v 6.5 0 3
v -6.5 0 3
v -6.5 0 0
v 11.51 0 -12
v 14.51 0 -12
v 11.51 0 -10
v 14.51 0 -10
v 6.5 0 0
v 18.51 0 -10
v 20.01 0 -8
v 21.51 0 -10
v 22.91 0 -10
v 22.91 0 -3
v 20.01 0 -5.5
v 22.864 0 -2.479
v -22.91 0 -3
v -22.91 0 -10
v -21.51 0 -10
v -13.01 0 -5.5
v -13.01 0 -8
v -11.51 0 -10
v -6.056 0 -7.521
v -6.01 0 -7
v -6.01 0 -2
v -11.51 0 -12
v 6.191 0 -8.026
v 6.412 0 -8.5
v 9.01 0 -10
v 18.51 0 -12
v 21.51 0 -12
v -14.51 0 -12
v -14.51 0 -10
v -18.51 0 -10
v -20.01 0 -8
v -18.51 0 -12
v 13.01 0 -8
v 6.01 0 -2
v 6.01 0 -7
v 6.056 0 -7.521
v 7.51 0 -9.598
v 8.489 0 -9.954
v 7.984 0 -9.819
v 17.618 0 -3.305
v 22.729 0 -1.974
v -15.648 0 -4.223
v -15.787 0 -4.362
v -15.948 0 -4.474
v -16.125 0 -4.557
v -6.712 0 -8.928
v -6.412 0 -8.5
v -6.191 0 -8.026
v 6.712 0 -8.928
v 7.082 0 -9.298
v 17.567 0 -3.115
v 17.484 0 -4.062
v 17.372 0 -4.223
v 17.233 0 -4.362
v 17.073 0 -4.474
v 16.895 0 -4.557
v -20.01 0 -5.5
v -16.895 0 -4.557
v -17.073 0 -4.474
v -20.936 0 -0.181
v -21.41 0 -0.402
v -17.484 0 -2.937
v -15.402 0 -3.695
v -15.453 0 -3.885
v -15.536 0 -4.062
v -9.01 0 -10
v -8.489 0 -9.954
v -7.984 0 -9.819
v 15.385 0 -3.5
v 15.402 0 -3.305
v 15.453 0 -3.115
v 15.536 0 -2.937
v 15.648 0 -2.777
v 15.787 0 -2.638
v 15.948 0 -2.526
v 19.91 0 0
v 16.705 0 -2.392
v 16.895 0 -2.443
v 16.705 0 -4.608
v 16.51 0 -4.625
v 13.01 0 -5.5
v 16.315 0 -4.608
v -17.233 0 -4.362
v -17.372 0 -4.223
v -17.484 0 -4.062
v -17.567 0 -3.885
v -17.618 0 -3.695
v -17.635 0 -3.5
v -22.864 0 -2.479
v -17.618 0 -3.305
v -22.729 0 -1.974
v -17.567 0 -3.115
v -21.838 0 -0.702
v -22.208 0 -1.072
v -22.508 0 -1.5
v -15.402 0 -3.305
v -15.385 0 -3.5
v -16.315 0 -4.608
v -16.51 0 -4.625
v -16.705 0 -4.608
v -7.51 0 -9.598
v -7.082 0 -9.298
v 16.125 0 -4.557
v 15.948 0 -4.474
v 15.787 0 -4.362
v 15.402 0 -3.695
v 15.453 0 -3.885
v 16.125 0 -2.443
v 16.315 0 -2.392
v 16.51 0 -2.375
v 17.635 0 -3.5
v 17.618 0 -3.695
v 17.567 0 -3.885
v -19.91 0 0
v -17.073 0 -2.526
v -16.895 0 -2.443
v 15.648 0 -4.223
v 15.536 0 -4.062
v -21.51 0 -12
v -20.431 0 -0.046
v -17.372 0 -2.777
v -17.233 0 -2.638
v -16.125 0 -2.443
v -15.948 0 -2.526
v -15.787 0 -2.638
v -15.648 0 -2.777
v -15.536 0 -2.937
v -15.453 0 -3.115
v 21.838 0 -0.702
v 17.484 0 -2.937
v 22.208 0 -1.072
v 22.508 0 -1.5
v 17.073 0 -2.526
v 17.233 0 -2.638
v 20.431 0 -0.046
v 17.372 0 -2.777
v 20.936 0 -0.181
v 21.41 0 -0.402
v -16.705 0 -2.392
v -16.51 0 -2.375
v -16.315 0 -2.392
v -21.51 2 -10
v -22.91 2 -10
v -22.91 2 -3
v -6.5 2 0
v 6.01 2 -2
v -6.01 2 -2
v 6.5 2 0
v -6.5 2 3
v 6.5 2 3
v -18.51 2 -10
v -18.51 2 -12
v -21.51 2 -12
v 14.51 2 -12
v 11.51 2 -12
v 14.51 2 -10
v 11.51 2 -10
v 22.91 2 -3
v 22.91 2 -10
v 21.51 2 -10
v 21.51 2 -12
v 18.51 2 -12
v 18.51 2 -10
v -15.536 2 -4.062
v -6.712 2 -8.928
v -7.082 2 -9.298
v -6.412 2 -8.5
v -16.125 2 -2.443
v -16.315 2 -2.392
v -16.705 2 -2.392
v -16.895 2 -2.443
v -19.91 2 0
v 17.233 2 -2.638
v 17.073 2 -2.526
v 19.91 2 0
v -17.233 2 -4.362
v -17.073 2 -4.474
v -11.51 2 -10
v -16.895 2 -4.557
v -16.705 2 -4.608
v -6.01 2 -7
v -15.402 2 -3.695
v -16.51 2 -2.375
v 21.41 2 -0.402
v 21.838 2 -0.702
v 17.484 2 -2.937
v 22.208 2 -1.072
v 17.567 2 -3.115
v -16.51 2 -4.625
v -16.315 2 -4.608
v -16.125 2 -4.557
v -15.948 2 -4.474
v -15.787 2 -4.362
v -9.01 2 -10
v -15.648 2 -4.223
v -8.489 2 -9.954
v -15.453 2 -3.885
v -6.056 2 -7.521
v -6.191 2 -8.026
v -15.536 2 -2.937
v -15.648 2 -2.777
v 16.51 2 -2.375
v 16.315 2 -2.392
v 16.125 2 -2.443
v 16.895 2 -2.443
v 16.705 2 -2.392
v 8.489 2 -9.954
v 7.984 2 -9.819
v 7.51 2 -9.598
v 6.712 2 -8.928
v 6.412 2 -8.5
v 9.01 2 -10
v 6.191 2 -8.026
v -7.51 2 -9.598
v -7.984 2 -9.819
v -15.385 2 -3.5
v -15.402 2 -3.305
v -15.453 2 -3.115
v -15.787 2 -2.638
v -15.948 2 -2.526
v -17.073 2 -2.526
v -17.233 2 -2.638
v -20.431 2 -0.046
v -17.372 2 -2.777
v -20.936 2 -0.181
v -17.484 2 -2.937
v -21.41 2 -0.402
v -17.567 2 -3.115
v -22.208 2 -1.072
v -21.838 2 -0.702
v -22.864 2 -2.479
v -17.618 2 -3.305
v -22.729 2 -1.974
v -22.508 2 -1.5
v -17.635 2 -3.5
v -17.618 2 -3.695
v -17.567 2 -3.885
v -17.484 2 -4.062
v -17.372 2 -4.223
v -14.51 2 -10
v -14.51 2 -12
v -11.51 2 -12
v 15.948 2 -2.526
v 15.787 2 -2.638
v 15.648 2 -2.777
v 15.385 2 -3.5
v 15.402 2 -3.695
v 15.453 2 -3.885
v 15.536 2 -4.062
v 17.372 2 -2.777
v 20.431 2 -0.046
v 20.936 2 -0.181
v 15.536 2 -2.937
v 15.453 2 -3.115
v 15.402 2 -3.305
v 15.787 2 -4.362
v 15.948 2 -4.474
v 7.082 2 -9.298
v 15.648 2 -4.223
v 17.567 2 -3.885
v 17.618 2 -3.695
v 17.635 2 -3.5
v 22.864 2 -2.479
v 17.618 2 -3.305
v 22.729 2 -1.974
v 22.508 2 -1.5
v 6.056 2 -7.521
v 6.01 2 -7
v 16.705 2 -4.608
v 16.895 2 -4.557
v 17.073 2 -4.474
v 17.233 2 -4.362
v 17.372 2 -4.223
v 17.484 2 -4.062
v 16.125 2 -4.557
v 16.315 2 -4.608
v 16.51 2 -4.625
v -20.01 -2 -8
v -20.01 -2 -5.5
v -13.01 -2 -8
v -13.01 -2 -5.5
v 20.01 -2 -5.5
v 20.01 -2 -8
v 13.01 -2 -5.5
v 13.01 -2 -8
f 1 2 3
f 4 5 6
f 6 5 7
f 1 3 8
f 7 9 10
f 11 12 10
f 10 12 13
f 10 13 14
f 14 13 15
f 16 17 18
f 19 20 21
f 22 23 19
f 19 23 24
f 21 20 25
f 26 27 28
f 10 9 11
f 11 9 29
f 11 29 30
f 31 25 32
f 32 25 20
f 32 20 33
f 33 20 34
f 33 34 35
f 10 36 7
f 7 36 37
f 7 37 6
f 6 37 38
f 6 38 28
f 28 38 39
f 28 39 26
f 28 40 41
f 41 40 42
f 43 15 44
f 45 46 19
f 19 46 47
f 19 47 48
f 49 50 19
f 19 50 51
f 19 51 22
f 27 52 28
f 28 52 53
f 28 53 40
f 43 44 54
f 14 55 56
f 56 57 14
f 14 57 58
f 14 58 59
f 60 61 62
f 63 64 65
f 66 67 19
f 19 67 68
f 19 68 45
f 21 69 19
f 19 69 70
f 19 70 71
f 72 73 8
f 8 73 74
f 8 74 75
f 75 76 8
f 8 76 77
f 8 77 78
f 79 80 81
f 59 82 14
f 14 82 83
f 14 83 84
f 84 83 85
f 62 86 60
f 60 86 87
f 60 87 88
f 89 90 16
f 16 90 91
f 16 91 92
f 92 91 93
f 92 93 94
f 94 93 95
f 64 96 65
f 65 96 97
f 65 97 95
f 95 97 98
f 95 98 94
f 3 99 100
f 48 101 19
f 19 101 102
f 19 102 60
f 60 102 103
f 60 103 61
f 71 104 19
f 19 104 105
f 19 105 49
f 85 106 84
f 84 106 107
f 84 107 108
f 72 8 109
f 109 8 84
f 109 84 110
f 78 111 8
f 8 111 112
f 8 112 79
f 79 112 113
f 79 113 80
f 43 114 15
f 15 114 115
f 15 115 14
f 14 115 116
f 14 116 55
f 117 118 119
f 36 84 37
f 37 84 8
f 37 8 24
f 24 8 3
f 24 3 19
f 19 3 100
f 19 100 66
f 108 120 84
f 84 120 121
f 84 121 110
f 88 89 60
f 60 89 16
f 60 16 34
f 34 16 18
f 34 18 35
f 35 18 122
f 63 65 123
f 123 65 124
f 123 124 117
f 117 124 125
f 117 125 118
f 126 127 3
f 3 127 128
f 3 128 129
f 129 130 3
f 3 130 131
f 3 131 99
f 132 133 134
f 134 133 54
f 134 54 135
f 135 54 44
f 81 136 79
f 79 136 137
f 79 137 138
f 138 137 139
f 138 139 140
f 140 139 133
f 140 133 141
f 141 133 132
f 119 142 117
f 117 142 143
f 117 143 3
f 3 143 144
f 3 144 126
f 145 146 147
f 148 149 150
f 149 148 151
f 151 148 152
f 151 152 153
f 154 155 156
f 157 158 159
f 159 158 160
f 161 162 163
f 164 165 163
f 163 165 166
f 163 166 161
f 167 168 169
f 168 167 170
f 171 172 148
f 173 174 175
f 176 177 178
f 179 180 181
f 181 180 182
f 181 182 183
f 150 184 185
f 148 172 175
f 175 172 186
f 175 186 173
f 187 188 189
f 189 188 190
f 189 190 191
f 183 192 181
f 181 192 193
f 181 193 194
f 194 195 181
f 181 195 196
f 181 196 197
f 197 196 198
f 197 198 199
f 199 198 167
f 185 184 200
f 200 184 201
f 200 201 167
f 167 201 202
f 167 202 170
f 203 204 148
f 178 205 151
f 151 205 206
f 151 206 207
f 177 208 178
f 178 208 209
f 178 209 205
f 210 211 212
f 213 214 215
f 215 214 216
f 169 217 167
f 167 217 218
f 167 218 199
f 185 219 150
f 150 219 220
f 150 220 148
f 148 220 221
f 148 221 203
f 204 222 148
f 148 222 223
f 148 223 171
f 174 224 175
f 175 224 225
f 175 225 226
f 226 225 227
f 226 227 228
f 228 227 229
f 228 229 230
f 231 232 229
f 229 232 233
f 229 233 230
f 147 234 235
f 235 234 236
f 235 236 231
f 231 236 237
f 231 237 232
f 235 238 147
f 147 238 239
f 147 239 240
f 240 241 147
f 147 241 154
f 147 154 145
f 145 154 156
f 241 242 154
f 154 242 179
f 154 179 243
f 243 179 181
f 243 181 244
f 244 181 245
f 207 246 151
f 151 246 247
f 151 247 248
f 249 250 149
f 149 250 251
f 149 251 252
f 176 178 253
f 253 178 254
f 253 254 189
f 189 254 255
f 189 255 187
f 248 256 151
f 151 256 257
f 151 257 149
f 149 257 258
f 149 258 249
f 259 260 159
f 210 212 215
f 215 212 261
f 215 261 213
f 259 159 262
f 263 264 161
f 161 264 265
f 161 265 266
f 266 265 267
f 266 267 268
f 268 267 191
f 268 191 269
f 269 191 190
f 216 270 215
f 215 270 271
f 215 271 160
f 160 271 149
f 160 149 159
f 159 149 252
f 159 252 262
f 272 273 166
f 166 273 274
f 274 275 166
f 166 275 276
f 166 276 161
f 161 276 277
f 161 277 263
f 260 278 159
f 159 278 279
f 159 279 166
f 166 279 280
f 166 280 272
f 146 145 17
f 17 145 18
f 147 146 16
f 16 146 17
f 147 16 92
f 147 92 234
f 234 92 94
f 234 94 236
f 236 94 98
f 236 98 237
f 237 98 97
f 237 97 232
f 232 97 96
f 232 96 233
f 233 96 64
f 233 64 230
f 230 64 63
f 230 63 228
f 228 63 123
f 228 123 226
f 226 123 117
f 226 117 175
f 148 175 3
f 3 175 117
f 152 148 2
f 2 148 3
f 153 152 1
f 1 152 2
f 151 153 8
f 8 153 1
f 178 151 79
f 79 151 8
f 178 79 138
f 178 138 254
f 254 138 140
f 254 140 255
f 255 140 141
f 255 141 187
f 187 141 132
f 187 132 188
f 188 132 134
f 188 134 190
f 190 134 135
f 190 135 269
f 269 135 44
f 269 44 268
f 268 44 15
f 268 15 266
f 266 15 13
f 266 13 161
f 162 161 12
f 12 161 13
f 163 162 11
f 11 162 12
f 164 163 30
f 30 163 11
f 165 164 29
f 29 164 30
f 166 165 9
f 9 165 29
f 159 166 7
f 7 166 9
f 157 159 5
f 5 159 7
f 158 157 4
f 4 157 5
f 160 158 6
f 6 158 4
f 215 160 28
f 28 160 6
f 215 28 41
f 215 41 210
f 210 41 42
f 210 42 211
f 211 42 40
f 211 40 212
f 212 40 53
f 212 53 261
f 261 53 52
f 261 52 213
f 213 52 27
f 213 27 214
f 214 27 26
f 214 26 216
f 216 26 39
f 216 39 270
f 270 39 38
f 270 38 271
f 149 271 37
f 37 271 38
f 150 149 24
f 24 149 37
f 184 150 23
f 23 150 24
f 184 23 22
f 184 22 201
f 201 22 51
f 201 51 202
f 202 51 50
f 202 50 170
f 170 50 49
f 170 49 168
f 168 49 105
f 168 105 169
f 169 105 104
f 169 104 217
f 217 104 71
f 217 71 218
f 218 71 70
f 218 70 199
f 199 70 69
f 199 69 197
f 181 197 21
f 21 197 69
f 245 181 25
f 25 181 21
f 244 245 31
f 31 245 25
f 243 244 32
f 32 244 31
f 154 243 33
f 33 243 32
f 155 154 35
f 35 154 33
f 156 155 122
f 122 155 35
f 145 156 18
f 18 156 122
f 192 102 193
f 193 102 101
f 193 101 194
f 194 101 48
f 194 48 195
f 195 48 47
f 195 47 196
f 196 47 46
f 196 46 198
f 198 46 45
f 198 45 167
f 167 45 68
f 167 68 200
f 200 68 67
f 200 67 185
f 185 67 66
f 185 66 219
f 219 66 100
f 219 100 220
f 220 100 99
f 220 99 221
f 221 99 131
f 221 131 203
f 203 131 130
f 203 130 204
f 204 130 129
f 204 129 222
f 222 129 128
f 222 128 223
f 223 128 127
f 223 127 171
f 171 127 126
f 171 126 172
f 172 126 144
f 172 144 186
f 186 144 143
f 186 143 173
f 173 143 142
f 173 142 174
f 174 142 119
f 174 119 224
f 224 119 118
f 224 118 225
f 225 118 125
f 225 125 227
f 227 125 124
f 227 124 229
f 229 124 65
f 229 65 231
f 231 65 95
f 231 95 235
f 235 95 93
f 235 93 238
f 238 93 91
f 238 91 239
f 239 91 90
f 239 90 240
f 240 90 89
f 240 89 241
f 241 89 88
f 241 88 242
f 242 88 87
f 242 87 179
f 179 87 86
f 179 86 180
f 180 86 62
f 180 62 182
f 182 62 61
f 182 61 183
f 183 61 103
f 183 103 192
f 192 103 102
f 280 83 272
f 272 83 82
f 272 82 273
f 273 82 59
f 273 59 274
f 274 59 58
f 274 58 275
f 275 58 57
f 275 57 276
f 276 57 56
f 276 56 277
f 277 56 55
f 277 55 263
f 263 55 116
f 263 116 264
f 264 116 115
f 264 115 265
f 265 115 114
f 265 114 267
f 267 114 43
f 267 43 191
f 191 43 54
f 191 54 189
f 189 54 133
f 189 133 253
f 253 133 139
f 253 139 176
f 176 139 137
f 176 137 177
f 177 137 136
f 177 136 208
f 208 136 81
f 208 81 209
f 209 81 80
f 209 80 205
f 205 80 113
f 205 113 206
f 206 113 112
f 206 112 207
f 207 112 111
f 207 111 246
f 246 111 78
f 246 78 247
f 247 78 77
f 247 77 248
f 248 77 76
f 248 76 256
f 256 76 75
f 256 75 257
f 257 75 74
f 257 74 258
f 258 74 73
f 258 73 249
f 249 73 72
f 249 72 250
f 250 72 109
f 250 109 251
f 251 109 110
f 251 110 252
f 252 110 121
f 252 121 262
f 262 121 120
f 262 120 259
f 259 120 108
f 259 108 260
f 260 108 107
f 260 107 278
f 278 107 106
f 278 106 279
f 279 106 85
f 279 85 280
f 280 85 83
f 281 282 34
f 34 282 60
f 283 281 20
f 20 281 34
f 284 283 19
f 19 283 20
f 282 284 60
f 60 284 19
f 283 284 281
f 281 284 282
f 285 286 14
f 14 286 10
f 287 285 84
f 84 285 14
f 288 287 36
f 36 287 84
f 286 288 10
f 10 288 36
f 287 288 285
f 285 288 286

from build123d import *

# Parameters (mm, degrees)
CROQUIS1_R              = 1.125
SALIENTE_EXTRUIR1_DEPTH = 2
CROQUIS3_W              = 7
CROQUIS3_H              = 2.5
SALIENTE_EXTRUIR2_DEPTH = 2


with BuildPart() as part:
    # Croquis1 → Saliente-Extruir1 (new body)
    with BuildSketch(Plane(origin=(0, 0, 0), x_dir=(1, 0, 0), z_dir=(0, 1, 0))):
        with BuildLine():
            Line((19.91, 0), (6.5, 0))
            Line((6.5, 0), (6.5, -3))
            Line((6.5, -3), (-6.5, -3))
            Line((-6.5, -3), (-6.5, 0))
            Line((-6.5, 0), (-19.91, 0))
            ThreePointArc((-19.91, 0), (-22.031320344, 0.878679656), (-22.91, 3))
            Line((-22.91, 3), (-22.91, 10))
            Line((-22.91, 10), (-21.51, 10))
            Line((-21.51, 10), (-21.51, 12))
            Line((-21.51, 12), (-18.51, 12))
            Line((-18.51, 12), (-18.51, 10))
            Line((-18.51, 10), (-14.51, 10))
            Line((-14.51, 10), (-14.51, 12))
            Line((-14.51, 12), (-11.51, 12))
            Line((-11.51, 12), (-11.51, 10))
            Line((-11.51, 10), (-9.01, 10))
            ThreePointArc((-9.01, 10), (-6.888679656, 9.121320344), (-6.01, 7))
            Line((-6.01, 7), (-6.01, 2))
            Line((-6.01, 2), (6.01, 2))
            Line((6.01, 2), (6.01, 7))
            ThreePointArc((6.01, 7), (6.888679656, 9.121320344), (9.01, 10))
            Line((9.01, 10), (11.51, 10))
            Line((11.51, 10), (11.51, 12))
            Line((11.51, 12), (14.51, 12))
            Line((14.51, 12), (14.51, 10))
            Line((14.51, 10), (18.51, 10))
            Line((18.51, 10), (18.51, 12))
            Line((18.51, 12), (21.51, 12))
            Line((21.51, 12), (21.51, 10))
            Line((21.51, 10), (22.91, 10))
            Line((22.91, 10), (22.91, 3))
            ThreePointArc((22.91, 3), (22.031320344, 0.878679656), (19.91, 0))
        make_face()
        with Locations(Location((-16.51, 3.5, 0), (0, 0, 270))):
            Circle(CROQUIS1_R, mode=Mode.SUBTRACT)
        with Locations(Location((16.51, 3.5, 0), (0, 0, 90))):
            Circle(CROQUIS1_R, mode=Mode.SUBTRACT)
    extrude(amount=SALIENTE_EXTRUIR1_DEPTH)

    # Croquis3 → Saliente-Extruir2 (add)
    with BuildSketch(Plane.XZ):
        with Locations((-16.51, -6.75)):
            Rectangle(CROQUIS3_W, CROQUIS3_H)
        with Locations((16.51, -6.75)):
            Rectangle(CROQUIS3_W, CROQUIS3_H)
    extrude(amount=SALIENTE_EXTRUIR2_DEPTH)


solid = part.part
